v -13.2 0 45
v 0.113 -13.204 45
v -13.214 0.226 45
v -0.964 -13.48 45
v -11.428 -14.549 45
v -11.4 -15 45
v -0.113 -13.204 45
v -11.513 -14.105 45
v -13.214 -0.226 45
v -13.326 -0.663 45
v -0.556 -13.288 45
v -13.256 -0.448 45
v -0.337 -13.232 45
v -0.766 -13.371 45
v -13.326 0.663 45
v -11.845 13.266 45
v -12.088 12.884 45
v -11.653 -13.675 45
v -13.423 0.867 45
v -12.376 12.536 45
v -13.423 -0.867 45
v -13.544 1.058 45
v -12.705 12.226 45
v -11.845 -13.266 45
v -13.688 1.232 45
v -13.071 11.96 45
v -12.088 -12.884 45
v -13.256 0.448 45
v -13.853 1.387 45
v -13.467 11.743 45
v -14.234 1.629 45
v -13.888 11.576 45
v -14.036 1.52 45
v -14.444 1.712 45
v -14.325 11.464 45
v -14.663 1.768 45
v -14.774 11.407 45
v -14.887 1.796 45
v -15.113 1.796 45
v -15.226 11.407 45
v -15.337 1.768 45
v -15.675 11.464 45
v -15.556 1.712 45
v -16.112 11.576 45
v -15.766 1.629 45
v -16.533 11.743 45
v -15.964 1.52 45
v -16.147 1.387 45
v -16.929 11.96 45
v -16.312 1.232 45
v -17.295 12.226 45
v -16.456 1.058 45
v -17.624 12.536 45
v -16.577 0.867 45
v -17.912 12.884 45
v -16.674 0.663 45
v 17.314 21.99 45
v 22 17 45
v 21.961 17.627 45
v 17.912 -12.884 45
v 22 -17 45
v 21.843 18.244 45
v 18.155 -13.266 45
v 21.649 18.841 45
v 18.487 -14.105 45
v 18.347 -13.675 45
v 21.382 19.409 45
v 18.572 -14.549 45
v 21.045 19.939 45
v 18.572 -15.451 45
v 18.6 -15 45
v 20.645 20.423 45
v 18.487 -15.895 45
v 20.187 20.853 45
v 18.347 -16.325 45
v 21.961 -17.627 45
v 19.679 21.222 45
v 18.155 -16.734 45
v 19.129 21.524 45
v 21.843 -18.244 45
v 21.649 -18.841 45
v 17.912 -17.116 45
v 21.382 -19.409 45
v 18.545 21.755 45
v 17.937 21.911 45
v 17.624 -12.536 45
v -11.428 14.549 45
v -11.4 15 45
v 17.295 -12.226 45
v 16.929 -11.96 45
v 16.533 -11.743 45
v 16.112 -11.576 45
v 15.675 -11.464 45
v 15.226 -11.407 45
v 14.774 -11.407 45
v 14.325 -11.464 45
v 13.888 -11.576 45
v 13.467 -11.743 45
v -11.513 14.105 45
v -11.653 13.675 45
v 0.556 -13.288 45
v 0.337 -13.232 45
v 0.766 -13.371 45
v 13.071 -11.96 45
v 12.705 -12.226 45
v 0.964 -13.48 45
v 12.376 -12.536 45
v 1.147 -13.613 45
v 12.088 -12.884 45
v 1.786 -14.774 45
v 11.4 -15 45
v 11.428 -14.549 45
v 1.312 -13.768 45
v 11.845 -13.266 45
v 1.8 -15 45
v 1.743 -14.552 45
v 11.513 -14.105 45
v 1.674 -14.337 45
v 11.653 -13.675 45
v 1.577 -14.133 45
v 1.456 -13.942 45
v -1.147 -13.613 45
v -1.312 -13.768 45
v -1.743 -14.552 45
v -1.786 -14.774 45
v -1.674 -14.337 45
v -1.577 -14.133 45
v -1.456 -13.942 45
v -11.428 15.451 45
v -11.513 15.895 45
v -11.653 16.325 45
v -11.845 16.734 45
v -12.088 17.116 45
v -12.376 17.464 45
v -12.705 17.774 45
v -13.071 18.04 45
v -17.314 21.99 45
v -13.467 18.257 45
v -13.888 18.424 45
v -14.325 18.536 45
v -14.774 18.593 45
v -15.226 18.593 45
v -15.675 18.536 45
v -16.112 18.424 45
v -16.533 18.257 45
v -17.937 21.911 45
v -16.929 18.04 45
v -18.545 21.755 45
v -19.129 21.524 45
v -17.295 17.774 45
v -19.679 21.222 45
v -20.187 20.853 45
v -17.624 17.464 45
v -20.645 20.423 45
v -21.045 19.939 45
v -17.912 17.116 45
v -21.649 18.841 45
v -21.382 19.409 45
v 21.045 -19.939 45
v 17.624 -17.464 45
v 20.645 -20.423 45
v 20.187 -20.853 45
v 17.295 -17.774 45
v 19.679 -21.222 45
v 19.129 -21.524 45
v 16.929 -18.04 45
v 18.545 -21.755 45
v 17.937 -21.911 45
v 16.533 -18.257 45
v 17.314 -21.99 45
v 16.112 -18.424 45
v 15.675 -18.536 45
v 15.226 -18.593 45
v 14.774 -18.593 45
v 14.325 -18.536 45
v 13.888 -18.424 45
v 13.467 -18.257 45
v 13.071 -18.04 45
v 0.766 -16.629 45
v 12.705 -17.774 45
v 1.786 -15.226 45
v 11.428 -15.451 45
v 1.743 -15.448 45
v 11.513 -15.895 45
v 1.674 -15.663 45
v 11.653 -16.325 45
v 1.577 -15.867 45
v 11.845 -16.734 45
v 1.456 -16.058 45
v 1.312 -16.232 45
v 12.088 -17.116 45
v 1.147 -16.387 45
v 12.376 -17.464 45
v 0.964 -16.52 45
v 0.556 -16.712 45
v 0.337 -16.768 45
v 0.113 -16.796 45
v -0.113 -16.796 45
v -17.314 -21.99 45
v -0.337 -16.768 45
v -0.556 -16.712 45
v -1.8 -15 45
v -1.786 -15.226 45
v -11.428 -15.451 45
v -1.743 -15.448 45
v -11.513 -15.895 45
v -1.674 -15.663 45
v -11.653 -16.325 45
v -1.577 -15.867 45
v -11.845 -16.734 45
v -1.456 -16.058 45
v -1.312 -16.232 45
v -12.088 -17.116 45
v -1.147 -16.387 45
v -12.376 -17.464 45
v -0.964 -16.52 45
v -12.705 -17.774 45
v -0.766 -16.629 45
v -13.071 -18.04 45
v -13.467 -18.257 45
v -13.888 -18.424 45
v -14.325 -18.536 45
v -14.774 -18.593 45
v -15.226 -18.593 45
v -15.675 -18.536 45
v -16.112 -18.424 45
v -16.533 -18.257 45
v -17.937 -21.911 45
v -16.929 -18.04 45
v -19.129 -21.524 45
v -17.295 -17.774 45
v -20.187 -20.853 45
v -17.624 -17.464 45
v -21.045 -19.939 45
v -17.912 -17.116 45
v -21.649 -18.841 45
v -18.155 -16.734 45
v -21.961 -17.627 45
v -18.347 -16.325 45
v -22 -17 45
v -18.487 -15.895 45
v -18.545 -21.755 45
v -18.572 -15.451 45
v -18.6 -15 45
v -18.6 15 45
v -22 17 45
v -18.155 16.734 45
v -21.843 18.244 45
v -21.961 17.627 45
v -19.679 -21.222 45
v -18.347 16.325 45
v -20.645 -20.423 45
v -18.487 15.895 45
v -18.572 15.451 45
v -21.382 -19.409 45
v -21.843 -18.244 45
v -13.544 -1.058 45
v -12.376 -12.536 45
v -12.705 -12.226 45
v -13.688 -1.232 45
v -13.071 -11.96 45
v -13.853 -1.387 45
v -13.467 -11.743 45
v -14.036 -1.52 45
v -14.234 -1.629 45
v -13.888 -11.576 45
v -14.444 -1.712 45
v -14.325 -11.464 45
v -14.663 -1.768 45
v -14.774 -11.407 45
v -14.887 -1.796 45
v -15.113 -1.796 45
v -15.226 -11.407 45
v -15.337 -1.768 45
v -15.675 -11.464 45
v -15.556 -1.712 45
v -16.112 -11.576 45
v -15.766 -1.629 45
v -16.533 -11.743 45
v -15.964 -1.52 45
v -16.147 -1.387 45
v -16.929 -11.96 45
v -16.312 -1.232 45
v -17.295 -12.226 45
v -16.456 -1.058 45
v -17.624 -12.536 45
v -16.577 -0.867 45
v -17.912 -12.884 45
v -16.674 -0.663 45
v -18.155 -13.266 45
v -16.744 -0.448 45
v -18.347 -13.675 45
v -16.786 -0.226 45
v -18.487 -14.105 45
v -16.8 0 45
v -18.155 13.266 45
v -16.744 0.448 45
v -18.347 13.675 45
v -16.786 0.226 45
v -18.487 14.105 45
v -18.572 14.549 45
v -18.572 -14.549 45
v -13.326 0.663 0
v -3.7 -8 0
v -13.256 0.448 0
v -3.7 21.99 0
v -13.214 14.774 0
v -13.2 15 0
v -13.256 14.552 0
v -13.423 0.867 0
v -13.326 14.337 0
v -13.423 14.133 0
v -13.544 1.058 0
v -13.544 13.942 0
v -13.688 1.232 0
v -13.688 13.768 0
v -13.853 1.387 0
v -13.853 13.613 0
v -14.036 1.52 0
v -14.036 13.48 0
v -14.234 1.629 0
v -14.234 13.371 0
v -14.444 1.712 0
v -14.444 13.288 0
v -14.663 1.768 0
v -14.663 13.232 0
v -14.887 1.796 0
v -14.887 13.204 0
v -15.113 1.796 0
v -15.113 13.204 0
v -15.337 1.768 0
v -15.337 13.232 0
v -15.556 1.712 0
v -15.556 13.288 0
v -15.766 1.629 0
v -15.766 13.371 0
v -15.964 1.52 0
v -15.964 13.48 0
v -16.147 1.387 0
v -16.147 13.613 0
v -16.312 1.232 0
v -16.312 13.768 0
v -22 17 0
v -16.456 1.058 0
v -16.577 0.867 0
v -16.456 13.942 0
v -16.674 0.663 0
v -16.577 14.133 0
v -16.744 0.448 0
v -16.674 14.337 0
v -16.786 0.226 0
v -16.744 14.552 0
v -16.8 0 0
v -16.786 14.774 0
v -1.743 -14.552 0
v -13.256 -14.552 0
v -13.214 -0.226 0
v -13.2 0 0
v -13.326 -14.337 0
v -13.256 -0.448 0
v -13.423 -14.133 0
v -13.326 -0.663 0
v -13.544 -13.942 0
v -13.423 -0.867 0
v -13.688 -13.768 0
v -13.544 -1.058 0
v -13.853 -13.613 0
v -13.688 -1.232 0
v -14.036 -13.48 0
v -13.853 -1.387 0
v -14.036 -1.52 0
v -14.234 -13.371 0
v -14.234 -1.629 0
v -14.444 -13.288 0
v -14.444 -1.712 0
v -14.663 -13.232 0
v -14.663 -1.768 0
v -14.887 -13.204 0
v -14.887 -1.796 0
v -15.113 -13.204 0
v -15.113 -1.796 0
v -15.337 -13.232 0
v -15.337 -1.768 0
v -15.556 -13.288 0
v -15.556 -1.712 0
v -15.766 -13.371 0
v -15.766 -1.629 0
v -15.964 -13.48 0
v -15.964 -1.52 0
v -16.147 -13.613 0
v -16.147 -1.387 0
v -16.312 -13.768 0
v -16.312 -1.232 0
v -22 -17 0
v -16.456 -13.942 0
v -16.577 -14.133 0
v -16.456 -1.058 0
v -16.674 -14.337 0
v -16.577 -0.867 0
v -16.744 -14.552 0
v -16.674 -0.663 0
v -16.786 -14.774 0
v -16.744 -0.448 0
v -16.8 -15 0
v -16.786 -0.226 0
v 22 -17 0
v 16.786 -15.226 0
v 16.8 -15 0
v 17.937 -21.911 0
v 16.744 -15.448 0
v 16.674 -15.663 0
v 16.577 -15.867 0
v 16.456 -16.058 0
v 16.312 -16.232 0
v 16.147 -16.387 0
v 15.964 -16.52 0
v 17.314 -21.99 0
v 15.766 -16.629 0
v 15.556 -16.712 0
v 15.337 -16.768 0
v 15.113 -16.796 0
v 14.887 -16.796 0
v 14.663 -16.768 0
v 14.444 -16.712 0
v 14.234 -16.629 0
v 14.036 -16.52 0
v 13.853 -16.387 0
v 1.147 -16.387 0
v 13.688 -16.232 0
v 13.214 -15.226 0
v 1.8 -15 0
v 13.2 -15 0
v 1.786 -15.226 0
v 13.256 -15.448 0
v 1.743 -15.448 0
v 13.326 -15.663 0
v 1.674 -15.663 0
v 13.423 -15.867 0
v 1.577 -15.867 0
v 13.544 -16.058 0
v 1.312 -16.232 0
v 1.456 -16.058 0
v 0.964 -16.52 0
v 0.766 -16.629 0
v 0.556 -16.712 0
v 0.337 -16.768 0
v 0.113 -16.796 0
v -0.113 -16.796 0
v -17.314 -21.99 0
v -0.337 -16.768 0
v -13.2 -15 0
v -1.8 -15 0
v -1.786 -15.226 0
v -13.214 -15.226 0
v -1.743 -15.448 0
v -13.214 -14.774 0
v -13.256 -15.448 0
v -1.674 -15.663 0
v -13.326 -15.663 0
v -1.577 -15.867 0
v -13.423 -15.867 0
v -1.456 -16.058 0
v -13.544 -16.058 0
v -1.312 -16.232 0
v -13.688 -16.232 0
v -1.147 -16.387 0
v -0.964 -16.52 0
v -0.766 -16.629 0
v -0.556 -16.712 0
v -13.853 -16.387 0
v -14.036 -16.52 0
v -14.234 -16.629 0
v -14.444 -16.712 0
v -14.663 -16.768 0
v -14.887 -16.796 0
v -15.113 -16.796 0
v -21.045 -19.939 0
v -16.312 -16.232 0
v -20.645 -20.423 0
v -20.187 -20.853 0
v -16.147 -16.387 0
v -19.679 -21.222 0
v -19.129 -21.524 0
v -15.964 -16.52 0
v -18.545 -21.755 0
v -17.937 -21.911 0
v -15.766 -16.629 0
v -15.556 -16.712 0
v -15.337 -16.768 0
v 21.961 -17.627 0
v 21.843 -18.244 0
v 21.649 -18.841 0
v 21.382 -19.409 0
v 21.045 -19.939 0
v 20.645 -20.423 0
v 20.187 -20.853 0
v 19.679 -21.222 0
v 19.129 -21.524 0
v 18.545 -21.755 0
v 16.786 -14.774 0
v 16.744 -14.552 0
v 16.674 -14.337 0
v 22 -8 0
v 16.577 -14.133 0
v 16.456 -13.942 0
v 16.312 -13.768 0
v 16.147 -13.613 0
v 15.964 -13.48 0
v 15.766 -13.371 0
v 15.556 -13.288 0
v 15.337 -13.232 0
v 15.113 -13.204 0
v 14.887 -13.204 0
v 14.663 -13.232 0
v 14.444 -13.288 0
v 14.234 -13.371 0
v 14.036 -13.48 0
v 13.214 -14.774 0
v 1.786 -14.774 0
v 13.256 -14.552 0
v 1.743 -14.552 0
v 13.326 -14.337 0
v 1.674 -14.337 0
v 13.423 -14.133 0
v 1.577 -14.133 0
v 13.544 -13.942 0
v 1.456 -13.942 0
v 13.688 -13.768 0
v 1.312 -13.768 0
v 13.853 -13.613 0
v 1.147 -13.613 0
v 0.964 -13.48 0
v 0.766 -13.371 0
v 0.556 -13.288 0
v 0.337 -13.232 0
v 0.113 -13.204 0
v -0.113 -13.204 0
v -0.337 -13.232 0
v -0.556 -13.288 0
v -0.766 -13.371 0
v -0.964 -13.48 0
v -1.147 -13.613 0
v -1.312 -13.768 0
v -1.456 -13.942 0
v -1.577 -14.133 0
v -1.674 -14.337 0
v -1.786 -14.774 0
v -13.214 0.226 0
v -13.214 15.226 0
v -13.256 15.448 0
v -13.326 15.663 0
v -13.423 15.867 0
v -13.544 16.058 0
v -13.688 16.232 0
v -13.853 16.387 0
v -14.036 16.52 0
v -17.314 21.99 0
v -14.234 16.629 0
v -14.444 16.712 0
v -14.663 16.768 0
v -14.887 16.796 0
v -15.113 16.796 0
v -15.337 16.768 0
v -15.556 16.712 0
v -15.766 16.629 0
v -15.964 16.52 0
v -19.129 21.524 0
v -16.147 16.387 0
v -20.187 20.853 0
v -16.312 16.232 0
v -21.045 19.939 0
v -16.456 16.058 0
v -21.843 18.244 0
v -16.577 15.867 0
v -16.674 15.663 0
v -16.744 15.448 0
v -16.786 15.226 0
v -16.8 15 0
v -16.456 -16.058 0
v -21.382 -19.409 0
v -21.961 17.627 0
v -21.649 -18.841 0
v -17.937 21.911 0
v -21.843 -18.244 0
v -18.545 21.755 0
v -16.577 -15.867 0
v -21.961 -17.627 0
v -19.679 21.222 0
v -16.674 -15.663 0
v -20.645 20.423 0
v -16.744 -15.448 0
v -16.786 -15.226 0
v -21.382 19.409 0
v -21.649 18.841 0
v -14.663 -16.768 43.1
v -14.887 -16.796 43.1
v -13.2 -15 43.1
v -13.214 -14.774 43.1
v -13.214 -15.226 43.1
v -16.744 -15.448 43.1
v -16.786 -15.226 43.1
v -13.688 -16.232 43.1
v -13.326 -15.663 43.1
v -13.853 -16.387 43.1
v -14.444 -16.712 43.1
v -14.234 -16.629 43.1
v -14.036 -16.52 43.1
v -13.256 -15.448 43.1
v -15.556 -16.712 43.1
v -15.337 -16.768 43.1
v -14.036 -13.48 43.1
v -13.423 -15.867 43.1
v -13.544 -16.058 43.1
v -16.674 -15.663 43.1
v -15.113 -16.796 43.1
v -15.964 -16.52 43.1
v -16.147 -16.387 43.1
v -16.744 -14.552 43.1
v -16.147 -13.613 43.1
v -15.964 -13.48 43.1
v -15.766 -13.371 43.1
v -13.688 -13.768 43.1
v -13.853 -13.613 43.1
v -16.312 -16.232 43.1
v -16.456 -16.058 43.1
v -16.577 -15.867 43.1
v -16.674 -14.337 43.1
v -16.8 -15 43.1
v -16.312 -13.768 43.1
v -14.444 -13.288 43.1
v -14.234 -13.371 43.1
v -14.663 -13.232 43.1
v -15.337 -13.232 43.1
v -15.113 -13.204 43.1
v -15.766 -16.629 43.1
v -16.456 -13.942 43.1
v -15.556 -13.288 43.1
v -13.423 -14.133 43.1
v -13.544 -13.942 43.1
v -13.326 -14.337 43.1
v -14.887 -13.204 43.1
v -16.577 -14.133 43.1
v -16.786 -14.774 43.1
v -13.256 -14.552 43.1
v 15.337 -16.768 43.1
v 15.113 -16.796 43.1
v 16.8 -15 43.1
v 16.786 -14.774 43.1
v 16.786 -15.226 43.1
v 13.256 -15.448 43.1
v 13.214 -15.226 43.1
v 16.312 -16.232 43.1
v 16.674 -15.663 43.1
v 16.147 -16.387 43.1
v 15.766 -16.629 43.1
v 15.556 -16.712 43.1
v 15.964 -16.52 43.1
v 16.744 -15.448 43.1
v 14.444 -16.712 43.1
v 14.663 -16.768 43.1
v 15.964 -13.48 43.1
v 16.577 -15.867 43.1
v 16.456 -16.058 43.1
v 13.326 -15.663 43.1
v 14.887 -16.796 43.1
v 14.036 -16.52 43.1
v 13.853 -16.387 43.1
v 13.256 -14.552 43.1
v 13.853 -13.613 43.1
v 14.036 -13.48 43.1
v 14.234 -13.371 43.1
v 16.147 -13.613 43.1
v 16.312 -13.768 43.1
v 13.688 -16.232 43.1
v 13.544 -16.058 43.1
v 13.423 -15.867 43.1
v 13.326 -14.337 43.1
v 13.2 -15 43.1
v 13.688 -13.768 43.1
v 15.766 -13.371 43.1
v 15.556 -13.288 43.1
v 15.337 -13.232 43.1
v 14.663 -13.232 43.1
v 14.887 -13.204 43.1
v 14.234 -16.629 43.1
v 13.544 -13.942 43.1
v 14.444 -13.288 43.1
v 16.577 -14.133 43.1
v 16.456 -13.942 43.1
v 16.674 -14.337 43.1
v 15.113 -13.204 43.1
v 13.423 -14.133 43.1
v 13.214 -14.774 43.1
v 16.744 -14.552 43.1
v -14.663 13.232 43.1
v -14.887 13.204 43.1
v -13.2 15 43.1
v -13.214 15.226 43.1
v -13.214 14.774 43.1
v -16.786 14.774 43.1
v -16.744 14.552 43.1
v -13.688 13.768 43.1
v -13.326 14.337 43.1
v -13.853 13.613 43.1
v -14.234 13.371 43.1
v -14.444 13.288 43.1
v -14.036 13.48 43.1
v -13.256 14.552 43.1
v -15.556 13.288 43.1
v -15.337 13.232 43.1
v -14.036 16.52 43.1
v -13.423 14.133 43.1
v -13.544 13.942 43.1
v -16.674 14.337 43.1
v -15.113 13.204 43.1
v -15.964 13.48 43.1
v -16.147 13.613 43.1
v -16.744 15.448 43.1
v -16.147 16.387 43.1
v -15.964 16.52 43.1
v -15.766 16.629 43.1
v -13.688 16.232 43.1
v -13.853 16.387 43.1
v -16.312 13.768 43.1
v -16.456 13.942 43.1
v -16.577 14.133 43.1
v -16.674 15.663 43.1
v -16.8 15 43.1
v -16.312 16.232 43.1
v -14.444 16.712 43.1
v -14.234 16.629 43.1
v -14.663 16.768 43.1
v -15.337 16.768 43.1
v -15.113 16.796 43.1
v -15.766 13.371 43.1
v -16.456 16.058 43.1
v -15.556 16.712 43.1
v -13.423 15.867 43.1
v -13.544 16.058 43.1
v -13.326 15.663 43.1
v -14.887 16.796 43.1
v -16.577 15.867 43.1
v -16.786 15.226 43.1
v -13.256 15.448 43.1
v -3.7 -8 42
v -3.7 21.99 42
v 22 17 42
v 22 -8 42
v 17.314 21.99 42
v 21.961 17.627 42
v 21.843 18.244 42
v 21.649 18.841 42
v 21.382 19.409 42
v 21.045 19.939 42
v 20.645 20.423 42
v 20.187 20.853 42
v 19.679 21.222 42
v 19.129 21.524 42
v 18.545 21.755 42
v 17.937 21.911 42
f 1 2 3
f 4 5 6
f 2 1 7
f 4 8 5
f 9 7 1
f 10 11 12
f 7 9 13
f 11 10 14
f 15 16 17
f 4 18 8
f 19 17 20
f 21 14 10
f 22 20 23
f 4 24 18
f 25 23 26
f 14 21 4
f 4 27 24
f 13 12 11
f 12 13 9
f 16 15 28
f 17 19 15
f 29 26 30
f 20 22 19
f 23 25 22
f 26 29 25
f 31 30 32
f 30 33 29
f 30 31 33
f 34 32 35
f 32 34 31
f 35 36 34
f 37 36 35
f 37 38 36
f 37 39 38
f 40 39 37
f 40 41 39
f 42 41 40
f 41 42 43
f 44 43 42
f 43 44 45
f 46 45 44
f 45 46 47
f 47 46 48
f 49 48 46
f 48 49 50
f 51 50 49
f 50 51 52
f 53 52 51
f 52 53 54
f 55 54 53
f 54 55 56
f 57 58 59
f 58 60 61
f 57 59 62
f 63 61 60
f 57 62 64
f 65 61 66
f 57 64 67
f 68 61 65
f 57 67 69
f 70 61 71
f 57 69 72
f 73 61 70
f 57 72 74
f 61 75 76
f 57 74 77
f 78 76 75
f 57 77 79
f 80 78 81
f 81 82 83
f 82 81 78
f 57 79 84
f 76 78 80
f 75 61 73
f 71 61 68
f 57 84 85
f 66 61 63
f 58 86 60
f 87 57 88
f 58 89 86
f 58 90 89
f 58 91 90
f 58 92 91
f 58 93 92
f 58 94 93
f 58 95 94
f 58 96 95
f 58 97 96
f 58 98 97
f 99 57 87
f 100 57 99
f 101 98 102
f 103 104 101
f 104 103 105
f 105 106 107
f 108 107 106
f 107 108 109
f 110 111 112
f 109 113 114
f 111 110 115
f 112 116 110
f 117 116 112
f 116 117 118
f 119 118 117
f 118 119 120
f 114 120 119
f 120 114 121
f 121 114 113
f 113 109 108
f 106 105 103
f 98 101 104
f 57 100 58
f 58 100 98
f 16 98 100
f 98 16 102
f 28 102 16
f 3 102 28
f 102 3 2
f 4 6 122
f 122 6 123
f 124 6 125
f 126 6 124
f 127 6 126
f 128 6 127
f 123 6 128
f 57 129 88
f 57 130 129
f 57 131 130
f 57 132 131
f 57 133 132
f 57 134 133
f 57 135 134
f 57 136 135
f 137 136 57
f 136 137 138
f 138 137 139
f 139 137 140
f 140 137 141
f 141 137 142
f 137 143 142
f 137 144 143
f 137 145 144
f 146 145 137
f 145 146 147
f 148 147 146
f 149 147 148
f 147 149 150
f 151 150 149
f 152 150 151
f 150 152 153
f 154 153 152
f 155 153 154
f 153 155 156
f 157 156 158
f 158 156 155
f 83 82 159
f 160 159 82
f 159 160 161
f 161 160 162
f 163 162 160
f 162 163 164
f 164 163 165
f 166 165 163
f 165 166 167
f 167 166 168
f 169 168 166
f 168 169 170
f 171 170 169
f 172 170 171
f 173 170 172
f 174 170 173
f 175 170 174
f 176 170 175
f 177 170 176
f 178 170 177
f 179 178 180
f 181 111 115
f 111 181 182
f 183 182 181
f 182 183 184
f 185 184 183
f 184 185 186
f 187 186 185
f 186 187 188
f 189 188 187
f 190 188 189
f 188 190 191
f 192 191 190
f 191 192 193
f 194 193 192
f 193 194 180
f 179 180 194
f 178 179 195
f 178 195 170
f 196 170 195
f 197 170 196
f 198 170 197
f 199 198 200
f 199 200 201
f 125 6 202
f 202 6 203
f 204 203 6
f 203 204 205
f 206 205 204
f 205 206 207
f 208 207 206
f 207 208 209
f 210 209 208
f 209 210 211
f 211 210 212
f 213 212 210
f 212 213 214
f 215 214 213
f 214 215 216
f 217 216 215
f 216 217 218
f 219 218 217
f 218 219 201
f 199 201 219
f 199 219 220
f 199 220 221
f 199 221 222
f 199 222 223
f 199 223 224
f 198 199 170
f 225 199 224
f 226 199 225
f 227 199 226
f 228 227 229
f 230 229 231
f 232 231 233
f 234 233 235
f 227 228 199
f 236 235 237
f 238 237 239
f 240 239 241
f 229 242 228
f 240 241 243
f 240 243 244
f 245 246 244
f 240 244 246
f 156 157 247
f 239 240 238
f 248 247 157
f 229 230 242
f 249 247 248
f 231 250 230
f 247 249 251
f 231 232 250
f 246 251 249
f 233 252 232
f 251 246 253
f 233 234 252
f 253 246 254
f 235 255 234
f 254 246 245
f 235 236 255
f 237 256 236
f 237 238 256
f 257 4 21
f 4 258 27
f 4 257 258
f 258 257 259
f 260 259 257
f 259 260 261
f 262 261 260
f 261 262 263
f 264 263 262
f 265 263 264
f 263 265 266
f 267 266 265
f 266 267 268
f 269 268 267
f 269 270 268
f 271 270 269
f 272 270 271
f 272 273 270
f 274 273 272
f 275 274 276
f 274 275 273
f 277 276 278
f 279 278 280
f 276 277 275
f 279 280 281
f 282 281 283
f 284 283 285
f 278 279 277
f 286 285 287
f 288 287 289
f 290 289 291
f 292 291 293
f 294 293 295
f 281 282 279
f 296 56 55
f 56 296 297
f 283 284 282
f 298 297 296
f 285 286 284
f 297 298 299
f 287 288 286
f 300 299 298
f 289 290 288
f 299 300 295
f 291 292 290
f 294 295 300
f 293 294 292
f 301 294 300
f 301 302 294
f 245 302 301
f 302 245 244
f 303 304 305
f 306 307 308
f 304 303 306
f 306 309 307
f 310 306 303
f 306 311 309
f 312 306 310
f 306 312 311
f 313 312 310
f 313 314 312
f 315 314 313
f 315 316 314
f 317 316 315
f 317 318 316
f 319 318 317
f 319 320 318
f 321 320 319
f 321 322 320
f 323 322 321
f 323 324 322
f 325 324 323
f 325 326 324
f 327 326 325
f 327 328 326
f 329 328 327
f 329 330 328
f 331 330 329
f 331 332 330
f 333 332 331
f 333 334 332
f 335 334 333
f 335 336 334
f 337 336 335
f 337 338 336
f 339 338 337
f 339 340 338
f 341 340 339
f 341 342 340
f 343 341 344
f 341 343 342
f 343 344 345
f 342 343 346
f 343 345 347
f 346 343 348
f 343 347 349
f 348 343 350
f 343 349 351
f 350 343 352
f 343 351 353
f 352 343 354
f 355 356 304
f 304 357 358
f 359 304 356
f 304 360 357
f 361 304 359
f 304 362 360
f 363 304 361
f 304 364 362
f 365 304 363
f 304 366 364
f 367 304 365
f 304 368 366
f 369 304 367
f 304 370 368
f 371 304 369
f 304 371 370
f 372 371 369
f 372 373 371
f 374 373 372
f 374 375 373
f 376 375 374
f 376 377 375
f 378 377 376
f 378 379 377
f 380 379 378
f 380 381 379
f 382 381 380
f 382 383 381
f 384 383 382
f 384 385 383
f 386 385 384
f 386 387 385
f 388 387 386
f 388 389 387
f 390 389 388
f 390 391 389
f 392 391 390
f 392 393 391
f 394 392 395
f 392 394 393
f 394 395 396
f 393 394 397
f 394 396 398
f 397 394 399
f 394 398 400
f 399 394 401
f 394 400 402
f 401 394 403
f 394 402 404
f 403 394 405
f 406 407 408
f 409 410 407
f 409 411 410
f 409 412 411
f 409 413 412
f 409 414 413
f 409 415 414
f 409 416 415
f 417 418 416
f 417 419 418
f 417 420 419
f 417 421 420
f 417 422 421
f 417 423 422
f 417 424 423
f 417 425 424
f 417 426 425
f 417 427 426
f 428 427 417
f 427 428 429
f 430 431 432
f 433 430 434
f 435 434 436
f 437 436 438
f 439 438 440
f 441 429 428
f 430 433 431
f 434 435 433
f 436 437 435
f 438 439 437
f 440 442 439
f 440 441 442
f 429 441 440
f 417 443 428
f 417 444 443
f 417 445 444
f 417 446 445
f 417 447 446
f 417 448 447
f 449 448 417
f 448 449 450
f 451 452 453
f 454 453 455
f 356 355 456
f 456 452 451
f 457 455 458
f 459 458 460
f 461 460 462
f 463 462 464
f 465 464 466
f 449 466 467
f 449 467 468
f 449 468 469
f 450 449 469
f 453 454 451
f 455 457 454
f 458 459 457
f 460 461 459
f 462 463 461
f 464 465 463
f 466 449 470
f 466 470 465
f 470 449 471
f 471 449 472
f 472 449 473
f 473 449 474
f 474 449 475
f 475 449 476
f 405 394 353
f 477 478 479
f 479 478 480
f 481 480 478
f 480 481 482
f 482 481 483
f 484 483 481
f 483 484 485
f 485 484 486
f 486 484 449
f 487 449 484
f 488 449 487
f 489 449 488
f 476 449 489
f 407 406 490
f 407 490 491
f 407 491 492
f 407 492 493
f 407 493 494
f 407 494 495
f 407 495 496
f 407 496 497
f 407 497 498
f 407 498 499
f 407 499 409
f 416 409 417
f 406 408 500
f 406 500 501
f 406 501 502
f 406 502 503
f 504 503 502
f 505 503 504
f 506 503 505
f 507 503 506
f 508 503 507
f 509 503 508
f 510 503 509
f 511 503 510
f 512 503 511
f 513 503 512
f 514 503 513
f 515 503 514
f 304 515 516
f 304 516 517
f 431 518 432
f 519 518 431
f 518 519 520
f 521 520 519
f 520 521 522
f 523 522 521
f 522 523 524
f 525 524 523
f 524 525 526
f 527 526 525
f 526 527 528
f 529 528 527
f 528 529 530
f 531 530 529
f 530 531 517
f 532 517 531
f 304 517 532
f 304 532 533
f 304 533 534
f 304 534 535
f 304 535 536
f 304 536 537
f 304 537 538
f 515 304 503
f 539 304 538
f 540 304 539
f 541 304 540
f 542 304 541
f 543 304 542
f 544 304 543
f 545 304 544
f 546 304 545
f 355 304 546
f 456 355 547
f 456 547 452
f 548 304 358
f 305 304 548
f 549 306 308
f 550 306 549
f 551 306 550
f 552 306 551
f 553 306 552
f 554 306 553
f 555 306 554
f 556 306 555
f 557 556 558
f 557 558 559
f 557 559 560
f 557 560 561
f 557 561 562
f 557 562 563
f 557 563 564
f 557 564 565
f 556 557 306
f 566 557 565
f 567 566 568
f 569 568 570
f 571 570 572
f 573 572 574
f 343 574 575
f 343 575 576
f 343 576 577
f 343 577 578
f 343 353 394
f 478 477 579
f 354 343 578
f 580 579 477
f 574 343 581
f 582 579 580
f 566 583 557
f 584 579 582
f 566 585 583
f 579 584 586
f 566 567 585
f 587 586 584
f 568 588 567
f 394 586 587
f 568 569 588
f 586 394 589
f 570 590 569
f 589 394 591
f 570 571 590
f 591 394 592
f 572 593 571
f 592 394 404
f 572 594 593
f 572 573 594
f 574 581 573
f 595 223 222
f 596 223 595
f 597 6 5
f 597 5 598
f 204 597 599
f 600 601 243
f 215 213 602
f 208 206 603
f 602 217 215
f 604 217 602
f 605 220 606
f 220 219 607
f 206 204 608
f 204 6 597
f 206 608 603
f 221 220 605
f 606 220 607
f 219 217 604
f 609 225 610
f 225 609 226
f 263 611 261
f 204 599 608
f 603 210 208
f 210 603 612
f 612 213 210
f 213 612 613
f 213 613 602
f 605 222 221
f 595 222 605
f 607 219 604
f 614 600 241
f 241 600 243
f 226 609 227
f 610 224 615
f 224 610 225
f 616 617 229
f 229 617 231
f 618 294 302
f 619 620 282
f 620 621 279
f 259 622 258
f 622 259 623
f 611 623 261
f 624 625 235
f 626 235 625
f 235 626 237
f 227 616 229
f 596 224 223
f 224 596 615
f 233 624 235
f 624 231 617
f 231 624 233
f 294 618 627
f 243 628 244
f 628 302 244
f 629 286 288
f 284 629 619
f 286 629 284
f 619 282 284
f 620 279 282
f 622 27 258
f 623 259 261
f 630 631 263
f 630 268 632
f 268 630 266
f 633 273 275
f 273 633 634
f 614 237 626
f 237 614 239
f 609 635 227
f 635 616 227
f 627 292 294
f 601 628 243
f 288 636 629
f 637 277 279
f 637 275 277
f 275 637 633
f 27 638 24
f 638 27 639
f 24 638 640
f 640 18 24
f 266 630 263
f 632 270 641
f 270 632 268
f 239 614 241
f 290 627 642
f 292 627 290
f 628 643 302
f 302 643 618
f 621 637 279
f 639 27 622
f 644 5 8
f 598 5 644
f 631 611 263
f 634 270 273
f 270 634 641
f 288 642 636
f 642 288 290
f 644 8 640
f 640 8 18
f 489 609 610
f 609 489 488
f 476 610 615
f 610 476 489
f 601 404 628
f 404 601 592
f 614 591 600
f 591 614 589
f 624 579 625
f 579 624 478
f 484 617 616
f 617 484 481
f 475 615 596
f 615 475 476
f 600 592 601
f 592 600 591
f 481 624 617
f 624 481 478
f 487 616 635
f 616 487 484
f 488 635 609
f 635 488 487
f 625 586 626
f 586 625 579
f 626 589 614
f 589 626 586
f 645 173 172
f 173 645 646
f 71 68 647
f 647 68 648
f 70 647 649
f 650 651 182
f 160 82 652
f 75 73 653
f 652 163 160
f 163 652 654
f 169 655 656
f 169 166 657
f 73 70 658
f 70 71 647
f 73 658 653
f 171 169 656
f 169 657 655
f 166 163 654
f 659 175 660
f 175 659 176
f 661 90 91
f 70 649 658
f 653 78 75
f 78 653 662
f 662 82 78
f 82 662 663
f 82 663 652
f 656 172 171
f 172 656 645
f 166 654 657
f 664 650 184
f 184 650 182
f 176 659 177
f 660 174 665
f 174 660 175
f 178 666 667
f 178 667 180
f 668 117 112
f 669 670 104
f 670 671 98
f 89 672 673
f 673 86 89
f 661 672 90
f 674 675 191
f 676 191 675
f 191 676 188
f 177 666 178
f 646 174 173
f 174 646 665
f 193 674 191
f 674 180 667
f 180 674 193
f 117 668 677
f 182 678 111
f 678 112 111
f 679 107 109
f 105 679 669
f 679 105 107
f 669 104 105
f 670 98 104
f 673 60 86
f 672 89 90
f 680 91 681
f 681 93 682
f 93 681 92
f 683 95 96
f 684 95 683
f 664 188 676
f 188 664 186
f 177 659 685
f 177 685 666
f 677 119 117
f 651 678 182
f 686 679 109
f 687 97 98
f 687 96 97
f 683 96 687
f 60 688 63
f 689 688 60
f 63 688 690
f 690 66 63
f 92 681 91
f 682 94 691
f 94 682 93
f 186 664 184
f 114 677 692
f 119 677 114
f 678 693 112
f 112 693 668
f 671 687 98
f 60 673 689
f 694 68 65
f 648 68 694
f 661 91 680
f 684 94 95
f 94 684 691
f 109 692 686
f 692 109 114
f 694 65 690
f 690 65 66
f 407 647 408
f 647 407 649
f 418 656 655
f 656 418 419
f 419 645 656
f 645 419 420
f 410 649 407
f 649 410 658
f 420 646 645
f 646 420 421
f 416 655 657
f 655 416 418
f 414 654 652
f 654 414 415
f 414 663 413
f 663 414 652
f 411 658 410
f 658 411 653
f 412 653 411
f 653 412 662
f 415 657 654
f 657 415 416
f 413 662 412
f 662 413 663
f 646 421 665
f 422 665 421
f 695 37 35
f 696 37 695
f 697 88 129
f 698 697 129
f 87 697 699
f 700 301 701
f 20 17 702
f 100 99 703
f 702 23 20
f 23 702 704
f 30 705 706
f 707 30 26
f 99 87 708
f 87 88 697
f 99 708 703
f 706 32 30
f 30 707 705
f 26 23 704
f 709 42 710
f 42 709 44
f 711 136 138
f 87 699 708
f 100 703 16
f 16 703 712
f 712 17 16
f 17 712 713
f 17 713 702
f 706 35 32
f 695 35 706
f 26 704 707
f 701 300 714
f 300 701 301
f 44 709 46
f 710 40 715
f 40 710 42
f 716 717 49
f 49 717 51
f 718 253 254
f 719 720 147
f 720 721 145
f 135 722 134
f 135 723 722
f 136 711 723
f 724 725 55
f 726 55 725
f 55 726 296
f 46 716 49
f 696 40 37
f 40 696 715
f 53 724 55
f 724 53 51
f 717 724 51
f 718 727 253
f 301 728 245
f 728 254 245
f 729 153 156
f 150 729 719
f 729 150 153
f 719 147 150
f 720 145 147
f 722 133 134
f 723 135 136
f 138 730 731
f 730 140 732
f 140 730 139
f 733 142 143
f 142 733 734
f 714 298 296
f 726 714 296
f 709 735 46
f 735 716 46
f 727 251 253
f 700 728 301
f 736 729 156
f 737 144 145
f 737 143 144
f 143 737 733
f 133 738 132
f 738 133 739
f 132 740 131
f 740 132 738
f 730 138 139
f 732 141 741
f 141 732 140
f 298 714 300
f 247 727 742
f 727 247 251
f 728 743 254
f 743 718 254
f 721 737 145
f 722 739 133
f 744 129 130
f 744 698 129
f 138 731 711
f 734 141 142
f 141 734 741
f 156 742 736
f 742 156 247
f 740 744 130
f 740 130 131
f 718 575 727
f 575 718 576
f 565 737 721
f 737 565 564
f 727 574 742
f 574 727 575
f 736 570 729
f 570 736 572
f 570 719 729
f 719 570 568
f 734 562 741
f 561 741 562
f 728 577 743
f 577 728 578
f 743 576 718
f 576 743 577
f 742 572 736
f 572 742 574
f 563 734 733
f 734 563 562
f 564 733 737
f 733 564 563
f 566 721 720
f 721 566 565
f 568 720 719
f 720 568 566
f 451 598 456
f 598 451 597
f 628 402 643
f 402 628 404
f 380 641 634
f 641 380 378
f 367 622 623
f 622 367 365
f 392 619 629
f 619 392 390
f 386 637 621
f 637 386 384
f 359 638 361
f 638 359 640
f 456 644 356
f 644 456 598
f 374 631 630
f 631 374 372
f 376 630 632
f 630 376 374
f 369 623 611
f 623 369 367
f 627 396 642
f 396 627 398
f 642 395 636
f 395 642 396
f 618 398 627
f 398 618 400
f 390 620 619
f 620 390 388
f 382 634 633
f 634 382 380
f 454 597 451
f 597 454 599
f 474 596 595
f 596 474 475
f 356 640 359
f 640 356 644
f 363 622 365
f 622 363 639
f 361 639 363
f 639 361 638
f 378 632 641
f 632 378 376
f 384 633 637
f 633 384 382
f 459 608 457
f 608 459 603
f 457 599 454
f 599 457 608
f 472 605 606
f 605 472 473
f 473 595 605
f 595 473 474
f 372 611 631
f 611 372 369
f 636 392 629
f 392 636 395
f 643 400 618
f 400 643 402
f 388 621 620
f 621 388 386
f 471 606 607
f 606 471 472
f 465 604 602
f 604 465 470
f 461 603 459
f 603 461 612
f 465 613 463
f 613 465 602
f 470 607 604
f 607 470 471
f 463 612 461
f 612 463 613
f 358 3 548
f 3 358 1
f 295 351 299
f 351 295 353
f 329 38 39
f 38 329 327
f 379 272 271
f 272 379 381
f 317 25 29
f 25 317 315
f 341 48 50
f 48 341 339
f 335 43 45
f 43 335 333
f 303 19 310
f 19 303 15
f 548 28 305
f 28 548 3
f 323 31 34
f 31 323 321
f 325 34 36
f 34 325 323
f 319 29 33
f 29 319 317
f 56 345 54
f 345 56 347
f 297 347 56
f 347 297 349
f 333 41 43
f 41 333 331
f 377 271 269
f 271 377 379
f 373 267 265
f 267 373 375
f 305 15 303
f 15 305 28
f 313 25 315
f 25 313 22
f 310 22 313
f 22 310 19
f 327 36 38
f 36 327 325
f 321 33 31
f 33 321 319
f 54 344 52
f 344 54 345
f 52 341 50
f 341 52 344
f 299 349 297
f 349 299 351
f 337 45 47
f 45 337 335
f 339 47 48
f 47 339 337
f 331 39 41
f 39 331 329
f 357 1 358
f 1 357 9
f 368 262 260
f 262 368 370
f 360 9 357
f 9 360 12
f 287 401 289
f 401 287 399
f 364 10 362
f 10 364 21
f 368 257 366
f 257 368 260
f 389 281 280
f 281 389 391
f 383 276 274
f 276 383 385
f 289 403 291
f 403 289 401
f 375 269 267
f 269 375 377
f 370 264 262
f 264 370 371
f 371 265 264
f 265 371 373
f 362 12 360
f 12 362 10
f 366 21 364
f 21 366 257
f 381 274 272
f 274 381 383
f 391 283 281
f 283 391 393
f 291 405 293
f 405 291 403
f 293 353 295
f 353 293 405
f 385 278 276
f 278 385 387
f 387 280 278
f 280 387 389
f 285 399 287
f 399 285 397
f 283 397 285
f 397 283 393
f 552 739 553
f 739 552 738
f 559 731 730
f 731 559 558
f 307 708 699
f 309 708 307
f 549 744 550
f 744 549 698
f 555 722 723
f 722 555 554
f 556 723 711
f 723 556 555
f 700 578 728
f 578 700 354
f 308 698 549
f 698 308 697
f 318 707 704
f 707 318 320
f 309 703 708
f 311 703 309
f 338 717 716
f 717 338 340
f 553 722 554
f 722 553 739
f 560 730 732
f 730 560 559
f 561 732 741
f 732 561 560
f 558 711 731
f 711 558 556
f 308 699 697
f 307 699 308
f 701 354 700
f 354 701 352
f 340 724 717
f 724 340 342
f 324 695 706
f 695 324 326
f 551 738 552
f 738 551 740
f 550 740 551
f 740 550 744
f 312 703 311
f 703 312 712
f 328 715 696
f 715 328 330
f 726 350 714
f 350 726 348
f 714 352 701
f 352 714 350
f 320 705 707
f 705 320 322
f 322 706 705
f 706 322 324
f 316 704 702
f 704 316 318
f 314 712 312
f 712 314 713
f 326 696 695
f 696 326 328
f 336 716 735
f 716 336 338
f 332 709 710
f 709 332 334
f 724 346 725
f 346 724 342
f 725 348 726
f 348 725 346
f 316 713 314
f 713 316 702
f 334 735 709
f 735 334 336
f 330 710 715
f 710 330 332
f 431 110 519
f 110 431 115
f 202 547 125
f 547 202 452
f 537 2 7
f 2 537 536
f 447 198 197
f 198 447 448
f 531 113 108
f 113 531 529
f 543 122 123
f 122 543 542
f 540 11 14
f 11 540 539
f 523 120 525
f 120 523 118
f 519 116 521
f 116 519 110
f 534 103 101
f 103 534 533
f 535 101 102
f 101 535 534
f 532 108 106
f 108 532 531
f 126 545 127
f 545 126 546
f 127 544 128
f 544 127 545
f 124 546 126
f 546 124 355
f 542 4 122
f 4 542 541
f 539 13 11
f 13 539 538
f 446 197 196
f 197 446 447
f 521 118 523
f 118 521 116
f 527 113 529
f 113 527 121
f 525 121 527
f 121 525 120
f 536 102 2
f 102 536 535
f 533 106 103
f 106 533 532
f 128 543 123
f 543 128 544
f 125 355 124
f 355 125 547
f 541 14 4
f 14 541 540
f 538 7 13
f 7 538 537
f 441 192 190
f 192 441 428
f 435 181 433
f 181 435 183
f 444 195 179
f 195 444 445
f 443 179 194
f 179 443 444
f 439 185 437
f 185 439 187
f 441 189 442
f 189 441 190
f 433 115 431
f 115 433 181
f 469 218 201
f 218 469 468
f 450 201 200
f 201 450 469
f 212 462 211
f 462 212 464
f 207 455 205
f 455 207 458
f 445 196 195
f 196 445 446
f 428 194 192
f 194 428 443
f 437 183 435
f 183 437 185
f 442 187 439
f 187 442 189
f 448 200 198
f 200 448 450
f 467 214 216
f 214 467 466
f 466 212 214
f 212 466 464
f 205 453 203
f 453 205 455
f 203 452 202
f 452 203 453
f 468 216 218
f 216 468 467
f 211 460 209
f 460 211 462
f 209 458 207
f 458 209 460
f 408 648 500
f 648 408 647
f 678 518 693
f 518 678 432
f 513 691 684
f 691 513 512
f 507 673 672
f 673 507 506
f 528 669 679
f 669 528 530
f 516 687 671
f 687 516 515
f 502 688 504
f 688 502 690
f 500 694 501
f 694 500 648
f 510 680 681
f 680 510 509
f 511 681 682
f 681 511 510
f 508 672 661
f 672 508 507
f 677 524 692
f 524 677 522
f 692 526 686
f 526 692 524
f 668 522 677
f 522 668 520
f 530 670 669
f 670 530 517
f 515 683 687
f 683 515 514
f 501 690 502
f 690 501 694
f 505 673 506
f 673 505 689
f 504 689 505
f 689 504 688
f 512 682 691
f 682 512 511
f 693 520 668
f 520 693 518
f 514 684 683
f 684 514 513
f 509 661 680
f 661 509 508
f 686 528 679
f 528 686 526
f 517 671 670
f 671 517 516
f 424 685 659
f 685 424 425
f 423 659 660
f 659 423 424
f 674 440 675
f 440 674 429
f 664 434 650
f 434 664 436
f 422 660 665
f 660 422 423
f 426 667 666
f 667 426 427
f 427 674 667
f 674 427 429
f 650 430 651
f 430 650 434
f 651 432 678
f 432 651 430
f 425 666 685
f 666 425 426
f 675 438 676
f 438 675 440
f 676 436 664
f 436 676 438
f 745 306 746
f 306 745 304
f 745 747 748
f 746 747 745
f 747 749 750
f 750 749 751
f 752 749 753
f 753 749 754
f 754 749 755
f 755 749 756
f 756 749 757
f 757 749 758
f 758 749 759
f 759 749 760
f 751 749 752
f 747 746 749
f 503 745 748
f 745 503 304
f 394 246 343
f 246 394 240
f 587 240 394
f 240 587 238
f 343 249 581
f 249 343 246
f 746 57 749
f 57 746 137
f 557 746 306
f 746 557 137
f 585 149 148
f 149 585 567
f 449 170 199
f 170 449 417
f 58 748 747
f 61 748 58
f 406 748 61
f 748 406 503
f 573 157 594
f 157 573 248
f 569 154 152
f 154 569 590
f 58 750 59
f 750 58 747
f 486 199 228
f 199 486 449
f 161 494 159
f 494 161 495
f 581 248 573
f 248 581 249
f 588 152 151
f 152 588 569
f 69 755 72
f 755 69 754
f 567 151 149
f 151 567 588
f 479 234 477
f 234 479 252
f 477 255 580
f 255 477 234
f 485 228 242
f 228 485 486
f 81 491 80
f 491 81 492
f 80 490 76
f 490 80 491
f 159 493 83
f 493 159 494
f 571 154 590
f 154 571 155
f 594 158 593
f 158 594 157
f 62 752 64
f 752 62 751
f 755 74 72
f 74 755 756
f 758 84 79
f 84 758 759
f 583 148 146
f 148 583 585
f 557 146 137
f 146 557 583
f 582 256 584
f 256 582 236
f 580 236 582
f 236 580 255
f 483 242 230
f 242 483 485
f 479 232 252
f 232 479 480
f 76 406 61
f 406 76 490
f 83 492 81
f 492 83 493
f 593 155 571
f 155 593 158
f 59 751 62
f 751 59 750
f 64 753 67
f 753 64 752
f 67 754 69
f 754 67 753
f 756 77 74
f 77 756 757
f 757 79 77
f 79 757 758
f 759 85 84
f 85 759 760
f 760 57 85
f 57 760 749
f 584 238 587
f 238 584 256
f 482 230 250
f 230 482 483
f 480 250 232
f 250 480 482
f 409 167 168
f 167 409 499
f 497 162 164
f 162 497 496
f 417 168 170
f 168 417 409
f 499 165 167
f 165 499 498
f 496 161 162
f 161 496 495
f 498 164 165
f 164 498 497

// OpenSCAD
$fn = 50;


difference() {
	union() {
		hull() {
			translate(v = [-17.0000000000, 17.0000000000, 0]) {
				cylinder(h = 45, r = 5);
			}
			translate(v = [17.0000000000, 17.0000000000, 0]) {
				cylinder(h = 45, r = 5);
			}
			translate(v = [-17.0000000000, -17.0000000000, 0]) {
				cylinder(h = 45, r = 5);
			}
			translate(v = [17.0000000000, -17.0000000000, 0]) {
				cylinder(h = 45, r = 5);
			}
		}
	}
	union() {
		translate(v = [-15.0000000000, -15.0000000000, 45]) {
			rotate(a = [0, 0, 0]) {
				difference() {
					union() {
						#translate(v = [0, 0, -45.0000000000]) {
							cylinder(h = 45, r = 1.5000000000);
						}
						#translate(v = [0, 0, -1.9000000000]) {
							cylinder(h = 1.9000000000, r1 = 1.8000000000, r2 = 3.6000000000);
						}
						#translate(v = [0, 0, -45.0000000000]) {
							cylinder(h = 45, r = 1.8000000000);
						}
						#translate(v = [0, 0, -45.0000000000]) {
							cylinder(h = 45, r = 1.5000000000);
						}
					}
					union();
				}
			}
		}
		translate(v = [15.0000000000, -15.0000000000, 45]) {
			rotate(a = [0, 0, 0]) {
				difference() {
					union() {
						#translate(v = [0, 0, -45.0000000000]) {
							cylinder(h = 45, r = 1.5000000000);
						}
						#translate(v = [0, 0, -1.9000000000]) {
							cylinder(h = 1.9000000000, r1 = 1.8000000000, r2 = 3.6000000000);
						}
						#translate(v = [0, 0, -45.0000000000]) {
							cylinder(h = 45, r = 1.8000000000);
						}
						#translate(v = [0, 0, -45.0000000000]) {
							cylinder(h = 45, r = 1.5000000000);
						}
					}
					union();
				}
			}
		}
		translate(v = [-15.0000000000, 15.0000000000, 45]) {
			rotate(a = [0, 0, 0]) {
				difference() {
					union() {
						#translate(v = [0, 0, -45.0000000000]) {
							cylinder(h = 45, r = 1.5000000000);
						}
						#translate(v = [0, 0, -1.9000000000]) {
							cylinder(h = 1.9000000000, r1 = 1.8000000000, r2 = 3.6000000000);
						}
						#translate(v = [0, 0, -45.0000000000]) {
							cylinder(h = 45, r = 1.8000000000);
						}
						#translate(v = [0, 0, -45.0000000000]) {
							cylinder(h = 45, r = 1.5000000000);
						}
					}
					union();
				}
			}
		}
		translate(v = [-15.0000000000, -15.0000000000, 0]) {
			cylinder(h = 45, r = 1.8000000000);
		}
		translate(v = [-15.0000000000, 0.0000000000, 0]) {
			cylinder(h = 45, r = 1.8000000000);
		}
		translate(v = [-15.0000000000, 15.0000000000, 0]) {
			cylinder(h = 45, r = 1.8000000000);
		}
		translate(v = [-15.0000000000, -15.0000000000, 0]) {
			cylinder(h = 45, r = 1.8000000000);
		}
		translate(v = [0.0000000000, -15.0000000000, 0]) {
			cylinder(h = 45, r = 1.8000000000);
		}
		translate(v = [15.0000000000, -15.0000000000, 0]) {
			cylinder(h = 45, r = 1.8000000000);
		}
		#translate(v = [-3.7000000000, -8.0000000000, 0]) {
			cube(size = [156.4000000000, 105.6000000000, 42]);
		}
	}
}
